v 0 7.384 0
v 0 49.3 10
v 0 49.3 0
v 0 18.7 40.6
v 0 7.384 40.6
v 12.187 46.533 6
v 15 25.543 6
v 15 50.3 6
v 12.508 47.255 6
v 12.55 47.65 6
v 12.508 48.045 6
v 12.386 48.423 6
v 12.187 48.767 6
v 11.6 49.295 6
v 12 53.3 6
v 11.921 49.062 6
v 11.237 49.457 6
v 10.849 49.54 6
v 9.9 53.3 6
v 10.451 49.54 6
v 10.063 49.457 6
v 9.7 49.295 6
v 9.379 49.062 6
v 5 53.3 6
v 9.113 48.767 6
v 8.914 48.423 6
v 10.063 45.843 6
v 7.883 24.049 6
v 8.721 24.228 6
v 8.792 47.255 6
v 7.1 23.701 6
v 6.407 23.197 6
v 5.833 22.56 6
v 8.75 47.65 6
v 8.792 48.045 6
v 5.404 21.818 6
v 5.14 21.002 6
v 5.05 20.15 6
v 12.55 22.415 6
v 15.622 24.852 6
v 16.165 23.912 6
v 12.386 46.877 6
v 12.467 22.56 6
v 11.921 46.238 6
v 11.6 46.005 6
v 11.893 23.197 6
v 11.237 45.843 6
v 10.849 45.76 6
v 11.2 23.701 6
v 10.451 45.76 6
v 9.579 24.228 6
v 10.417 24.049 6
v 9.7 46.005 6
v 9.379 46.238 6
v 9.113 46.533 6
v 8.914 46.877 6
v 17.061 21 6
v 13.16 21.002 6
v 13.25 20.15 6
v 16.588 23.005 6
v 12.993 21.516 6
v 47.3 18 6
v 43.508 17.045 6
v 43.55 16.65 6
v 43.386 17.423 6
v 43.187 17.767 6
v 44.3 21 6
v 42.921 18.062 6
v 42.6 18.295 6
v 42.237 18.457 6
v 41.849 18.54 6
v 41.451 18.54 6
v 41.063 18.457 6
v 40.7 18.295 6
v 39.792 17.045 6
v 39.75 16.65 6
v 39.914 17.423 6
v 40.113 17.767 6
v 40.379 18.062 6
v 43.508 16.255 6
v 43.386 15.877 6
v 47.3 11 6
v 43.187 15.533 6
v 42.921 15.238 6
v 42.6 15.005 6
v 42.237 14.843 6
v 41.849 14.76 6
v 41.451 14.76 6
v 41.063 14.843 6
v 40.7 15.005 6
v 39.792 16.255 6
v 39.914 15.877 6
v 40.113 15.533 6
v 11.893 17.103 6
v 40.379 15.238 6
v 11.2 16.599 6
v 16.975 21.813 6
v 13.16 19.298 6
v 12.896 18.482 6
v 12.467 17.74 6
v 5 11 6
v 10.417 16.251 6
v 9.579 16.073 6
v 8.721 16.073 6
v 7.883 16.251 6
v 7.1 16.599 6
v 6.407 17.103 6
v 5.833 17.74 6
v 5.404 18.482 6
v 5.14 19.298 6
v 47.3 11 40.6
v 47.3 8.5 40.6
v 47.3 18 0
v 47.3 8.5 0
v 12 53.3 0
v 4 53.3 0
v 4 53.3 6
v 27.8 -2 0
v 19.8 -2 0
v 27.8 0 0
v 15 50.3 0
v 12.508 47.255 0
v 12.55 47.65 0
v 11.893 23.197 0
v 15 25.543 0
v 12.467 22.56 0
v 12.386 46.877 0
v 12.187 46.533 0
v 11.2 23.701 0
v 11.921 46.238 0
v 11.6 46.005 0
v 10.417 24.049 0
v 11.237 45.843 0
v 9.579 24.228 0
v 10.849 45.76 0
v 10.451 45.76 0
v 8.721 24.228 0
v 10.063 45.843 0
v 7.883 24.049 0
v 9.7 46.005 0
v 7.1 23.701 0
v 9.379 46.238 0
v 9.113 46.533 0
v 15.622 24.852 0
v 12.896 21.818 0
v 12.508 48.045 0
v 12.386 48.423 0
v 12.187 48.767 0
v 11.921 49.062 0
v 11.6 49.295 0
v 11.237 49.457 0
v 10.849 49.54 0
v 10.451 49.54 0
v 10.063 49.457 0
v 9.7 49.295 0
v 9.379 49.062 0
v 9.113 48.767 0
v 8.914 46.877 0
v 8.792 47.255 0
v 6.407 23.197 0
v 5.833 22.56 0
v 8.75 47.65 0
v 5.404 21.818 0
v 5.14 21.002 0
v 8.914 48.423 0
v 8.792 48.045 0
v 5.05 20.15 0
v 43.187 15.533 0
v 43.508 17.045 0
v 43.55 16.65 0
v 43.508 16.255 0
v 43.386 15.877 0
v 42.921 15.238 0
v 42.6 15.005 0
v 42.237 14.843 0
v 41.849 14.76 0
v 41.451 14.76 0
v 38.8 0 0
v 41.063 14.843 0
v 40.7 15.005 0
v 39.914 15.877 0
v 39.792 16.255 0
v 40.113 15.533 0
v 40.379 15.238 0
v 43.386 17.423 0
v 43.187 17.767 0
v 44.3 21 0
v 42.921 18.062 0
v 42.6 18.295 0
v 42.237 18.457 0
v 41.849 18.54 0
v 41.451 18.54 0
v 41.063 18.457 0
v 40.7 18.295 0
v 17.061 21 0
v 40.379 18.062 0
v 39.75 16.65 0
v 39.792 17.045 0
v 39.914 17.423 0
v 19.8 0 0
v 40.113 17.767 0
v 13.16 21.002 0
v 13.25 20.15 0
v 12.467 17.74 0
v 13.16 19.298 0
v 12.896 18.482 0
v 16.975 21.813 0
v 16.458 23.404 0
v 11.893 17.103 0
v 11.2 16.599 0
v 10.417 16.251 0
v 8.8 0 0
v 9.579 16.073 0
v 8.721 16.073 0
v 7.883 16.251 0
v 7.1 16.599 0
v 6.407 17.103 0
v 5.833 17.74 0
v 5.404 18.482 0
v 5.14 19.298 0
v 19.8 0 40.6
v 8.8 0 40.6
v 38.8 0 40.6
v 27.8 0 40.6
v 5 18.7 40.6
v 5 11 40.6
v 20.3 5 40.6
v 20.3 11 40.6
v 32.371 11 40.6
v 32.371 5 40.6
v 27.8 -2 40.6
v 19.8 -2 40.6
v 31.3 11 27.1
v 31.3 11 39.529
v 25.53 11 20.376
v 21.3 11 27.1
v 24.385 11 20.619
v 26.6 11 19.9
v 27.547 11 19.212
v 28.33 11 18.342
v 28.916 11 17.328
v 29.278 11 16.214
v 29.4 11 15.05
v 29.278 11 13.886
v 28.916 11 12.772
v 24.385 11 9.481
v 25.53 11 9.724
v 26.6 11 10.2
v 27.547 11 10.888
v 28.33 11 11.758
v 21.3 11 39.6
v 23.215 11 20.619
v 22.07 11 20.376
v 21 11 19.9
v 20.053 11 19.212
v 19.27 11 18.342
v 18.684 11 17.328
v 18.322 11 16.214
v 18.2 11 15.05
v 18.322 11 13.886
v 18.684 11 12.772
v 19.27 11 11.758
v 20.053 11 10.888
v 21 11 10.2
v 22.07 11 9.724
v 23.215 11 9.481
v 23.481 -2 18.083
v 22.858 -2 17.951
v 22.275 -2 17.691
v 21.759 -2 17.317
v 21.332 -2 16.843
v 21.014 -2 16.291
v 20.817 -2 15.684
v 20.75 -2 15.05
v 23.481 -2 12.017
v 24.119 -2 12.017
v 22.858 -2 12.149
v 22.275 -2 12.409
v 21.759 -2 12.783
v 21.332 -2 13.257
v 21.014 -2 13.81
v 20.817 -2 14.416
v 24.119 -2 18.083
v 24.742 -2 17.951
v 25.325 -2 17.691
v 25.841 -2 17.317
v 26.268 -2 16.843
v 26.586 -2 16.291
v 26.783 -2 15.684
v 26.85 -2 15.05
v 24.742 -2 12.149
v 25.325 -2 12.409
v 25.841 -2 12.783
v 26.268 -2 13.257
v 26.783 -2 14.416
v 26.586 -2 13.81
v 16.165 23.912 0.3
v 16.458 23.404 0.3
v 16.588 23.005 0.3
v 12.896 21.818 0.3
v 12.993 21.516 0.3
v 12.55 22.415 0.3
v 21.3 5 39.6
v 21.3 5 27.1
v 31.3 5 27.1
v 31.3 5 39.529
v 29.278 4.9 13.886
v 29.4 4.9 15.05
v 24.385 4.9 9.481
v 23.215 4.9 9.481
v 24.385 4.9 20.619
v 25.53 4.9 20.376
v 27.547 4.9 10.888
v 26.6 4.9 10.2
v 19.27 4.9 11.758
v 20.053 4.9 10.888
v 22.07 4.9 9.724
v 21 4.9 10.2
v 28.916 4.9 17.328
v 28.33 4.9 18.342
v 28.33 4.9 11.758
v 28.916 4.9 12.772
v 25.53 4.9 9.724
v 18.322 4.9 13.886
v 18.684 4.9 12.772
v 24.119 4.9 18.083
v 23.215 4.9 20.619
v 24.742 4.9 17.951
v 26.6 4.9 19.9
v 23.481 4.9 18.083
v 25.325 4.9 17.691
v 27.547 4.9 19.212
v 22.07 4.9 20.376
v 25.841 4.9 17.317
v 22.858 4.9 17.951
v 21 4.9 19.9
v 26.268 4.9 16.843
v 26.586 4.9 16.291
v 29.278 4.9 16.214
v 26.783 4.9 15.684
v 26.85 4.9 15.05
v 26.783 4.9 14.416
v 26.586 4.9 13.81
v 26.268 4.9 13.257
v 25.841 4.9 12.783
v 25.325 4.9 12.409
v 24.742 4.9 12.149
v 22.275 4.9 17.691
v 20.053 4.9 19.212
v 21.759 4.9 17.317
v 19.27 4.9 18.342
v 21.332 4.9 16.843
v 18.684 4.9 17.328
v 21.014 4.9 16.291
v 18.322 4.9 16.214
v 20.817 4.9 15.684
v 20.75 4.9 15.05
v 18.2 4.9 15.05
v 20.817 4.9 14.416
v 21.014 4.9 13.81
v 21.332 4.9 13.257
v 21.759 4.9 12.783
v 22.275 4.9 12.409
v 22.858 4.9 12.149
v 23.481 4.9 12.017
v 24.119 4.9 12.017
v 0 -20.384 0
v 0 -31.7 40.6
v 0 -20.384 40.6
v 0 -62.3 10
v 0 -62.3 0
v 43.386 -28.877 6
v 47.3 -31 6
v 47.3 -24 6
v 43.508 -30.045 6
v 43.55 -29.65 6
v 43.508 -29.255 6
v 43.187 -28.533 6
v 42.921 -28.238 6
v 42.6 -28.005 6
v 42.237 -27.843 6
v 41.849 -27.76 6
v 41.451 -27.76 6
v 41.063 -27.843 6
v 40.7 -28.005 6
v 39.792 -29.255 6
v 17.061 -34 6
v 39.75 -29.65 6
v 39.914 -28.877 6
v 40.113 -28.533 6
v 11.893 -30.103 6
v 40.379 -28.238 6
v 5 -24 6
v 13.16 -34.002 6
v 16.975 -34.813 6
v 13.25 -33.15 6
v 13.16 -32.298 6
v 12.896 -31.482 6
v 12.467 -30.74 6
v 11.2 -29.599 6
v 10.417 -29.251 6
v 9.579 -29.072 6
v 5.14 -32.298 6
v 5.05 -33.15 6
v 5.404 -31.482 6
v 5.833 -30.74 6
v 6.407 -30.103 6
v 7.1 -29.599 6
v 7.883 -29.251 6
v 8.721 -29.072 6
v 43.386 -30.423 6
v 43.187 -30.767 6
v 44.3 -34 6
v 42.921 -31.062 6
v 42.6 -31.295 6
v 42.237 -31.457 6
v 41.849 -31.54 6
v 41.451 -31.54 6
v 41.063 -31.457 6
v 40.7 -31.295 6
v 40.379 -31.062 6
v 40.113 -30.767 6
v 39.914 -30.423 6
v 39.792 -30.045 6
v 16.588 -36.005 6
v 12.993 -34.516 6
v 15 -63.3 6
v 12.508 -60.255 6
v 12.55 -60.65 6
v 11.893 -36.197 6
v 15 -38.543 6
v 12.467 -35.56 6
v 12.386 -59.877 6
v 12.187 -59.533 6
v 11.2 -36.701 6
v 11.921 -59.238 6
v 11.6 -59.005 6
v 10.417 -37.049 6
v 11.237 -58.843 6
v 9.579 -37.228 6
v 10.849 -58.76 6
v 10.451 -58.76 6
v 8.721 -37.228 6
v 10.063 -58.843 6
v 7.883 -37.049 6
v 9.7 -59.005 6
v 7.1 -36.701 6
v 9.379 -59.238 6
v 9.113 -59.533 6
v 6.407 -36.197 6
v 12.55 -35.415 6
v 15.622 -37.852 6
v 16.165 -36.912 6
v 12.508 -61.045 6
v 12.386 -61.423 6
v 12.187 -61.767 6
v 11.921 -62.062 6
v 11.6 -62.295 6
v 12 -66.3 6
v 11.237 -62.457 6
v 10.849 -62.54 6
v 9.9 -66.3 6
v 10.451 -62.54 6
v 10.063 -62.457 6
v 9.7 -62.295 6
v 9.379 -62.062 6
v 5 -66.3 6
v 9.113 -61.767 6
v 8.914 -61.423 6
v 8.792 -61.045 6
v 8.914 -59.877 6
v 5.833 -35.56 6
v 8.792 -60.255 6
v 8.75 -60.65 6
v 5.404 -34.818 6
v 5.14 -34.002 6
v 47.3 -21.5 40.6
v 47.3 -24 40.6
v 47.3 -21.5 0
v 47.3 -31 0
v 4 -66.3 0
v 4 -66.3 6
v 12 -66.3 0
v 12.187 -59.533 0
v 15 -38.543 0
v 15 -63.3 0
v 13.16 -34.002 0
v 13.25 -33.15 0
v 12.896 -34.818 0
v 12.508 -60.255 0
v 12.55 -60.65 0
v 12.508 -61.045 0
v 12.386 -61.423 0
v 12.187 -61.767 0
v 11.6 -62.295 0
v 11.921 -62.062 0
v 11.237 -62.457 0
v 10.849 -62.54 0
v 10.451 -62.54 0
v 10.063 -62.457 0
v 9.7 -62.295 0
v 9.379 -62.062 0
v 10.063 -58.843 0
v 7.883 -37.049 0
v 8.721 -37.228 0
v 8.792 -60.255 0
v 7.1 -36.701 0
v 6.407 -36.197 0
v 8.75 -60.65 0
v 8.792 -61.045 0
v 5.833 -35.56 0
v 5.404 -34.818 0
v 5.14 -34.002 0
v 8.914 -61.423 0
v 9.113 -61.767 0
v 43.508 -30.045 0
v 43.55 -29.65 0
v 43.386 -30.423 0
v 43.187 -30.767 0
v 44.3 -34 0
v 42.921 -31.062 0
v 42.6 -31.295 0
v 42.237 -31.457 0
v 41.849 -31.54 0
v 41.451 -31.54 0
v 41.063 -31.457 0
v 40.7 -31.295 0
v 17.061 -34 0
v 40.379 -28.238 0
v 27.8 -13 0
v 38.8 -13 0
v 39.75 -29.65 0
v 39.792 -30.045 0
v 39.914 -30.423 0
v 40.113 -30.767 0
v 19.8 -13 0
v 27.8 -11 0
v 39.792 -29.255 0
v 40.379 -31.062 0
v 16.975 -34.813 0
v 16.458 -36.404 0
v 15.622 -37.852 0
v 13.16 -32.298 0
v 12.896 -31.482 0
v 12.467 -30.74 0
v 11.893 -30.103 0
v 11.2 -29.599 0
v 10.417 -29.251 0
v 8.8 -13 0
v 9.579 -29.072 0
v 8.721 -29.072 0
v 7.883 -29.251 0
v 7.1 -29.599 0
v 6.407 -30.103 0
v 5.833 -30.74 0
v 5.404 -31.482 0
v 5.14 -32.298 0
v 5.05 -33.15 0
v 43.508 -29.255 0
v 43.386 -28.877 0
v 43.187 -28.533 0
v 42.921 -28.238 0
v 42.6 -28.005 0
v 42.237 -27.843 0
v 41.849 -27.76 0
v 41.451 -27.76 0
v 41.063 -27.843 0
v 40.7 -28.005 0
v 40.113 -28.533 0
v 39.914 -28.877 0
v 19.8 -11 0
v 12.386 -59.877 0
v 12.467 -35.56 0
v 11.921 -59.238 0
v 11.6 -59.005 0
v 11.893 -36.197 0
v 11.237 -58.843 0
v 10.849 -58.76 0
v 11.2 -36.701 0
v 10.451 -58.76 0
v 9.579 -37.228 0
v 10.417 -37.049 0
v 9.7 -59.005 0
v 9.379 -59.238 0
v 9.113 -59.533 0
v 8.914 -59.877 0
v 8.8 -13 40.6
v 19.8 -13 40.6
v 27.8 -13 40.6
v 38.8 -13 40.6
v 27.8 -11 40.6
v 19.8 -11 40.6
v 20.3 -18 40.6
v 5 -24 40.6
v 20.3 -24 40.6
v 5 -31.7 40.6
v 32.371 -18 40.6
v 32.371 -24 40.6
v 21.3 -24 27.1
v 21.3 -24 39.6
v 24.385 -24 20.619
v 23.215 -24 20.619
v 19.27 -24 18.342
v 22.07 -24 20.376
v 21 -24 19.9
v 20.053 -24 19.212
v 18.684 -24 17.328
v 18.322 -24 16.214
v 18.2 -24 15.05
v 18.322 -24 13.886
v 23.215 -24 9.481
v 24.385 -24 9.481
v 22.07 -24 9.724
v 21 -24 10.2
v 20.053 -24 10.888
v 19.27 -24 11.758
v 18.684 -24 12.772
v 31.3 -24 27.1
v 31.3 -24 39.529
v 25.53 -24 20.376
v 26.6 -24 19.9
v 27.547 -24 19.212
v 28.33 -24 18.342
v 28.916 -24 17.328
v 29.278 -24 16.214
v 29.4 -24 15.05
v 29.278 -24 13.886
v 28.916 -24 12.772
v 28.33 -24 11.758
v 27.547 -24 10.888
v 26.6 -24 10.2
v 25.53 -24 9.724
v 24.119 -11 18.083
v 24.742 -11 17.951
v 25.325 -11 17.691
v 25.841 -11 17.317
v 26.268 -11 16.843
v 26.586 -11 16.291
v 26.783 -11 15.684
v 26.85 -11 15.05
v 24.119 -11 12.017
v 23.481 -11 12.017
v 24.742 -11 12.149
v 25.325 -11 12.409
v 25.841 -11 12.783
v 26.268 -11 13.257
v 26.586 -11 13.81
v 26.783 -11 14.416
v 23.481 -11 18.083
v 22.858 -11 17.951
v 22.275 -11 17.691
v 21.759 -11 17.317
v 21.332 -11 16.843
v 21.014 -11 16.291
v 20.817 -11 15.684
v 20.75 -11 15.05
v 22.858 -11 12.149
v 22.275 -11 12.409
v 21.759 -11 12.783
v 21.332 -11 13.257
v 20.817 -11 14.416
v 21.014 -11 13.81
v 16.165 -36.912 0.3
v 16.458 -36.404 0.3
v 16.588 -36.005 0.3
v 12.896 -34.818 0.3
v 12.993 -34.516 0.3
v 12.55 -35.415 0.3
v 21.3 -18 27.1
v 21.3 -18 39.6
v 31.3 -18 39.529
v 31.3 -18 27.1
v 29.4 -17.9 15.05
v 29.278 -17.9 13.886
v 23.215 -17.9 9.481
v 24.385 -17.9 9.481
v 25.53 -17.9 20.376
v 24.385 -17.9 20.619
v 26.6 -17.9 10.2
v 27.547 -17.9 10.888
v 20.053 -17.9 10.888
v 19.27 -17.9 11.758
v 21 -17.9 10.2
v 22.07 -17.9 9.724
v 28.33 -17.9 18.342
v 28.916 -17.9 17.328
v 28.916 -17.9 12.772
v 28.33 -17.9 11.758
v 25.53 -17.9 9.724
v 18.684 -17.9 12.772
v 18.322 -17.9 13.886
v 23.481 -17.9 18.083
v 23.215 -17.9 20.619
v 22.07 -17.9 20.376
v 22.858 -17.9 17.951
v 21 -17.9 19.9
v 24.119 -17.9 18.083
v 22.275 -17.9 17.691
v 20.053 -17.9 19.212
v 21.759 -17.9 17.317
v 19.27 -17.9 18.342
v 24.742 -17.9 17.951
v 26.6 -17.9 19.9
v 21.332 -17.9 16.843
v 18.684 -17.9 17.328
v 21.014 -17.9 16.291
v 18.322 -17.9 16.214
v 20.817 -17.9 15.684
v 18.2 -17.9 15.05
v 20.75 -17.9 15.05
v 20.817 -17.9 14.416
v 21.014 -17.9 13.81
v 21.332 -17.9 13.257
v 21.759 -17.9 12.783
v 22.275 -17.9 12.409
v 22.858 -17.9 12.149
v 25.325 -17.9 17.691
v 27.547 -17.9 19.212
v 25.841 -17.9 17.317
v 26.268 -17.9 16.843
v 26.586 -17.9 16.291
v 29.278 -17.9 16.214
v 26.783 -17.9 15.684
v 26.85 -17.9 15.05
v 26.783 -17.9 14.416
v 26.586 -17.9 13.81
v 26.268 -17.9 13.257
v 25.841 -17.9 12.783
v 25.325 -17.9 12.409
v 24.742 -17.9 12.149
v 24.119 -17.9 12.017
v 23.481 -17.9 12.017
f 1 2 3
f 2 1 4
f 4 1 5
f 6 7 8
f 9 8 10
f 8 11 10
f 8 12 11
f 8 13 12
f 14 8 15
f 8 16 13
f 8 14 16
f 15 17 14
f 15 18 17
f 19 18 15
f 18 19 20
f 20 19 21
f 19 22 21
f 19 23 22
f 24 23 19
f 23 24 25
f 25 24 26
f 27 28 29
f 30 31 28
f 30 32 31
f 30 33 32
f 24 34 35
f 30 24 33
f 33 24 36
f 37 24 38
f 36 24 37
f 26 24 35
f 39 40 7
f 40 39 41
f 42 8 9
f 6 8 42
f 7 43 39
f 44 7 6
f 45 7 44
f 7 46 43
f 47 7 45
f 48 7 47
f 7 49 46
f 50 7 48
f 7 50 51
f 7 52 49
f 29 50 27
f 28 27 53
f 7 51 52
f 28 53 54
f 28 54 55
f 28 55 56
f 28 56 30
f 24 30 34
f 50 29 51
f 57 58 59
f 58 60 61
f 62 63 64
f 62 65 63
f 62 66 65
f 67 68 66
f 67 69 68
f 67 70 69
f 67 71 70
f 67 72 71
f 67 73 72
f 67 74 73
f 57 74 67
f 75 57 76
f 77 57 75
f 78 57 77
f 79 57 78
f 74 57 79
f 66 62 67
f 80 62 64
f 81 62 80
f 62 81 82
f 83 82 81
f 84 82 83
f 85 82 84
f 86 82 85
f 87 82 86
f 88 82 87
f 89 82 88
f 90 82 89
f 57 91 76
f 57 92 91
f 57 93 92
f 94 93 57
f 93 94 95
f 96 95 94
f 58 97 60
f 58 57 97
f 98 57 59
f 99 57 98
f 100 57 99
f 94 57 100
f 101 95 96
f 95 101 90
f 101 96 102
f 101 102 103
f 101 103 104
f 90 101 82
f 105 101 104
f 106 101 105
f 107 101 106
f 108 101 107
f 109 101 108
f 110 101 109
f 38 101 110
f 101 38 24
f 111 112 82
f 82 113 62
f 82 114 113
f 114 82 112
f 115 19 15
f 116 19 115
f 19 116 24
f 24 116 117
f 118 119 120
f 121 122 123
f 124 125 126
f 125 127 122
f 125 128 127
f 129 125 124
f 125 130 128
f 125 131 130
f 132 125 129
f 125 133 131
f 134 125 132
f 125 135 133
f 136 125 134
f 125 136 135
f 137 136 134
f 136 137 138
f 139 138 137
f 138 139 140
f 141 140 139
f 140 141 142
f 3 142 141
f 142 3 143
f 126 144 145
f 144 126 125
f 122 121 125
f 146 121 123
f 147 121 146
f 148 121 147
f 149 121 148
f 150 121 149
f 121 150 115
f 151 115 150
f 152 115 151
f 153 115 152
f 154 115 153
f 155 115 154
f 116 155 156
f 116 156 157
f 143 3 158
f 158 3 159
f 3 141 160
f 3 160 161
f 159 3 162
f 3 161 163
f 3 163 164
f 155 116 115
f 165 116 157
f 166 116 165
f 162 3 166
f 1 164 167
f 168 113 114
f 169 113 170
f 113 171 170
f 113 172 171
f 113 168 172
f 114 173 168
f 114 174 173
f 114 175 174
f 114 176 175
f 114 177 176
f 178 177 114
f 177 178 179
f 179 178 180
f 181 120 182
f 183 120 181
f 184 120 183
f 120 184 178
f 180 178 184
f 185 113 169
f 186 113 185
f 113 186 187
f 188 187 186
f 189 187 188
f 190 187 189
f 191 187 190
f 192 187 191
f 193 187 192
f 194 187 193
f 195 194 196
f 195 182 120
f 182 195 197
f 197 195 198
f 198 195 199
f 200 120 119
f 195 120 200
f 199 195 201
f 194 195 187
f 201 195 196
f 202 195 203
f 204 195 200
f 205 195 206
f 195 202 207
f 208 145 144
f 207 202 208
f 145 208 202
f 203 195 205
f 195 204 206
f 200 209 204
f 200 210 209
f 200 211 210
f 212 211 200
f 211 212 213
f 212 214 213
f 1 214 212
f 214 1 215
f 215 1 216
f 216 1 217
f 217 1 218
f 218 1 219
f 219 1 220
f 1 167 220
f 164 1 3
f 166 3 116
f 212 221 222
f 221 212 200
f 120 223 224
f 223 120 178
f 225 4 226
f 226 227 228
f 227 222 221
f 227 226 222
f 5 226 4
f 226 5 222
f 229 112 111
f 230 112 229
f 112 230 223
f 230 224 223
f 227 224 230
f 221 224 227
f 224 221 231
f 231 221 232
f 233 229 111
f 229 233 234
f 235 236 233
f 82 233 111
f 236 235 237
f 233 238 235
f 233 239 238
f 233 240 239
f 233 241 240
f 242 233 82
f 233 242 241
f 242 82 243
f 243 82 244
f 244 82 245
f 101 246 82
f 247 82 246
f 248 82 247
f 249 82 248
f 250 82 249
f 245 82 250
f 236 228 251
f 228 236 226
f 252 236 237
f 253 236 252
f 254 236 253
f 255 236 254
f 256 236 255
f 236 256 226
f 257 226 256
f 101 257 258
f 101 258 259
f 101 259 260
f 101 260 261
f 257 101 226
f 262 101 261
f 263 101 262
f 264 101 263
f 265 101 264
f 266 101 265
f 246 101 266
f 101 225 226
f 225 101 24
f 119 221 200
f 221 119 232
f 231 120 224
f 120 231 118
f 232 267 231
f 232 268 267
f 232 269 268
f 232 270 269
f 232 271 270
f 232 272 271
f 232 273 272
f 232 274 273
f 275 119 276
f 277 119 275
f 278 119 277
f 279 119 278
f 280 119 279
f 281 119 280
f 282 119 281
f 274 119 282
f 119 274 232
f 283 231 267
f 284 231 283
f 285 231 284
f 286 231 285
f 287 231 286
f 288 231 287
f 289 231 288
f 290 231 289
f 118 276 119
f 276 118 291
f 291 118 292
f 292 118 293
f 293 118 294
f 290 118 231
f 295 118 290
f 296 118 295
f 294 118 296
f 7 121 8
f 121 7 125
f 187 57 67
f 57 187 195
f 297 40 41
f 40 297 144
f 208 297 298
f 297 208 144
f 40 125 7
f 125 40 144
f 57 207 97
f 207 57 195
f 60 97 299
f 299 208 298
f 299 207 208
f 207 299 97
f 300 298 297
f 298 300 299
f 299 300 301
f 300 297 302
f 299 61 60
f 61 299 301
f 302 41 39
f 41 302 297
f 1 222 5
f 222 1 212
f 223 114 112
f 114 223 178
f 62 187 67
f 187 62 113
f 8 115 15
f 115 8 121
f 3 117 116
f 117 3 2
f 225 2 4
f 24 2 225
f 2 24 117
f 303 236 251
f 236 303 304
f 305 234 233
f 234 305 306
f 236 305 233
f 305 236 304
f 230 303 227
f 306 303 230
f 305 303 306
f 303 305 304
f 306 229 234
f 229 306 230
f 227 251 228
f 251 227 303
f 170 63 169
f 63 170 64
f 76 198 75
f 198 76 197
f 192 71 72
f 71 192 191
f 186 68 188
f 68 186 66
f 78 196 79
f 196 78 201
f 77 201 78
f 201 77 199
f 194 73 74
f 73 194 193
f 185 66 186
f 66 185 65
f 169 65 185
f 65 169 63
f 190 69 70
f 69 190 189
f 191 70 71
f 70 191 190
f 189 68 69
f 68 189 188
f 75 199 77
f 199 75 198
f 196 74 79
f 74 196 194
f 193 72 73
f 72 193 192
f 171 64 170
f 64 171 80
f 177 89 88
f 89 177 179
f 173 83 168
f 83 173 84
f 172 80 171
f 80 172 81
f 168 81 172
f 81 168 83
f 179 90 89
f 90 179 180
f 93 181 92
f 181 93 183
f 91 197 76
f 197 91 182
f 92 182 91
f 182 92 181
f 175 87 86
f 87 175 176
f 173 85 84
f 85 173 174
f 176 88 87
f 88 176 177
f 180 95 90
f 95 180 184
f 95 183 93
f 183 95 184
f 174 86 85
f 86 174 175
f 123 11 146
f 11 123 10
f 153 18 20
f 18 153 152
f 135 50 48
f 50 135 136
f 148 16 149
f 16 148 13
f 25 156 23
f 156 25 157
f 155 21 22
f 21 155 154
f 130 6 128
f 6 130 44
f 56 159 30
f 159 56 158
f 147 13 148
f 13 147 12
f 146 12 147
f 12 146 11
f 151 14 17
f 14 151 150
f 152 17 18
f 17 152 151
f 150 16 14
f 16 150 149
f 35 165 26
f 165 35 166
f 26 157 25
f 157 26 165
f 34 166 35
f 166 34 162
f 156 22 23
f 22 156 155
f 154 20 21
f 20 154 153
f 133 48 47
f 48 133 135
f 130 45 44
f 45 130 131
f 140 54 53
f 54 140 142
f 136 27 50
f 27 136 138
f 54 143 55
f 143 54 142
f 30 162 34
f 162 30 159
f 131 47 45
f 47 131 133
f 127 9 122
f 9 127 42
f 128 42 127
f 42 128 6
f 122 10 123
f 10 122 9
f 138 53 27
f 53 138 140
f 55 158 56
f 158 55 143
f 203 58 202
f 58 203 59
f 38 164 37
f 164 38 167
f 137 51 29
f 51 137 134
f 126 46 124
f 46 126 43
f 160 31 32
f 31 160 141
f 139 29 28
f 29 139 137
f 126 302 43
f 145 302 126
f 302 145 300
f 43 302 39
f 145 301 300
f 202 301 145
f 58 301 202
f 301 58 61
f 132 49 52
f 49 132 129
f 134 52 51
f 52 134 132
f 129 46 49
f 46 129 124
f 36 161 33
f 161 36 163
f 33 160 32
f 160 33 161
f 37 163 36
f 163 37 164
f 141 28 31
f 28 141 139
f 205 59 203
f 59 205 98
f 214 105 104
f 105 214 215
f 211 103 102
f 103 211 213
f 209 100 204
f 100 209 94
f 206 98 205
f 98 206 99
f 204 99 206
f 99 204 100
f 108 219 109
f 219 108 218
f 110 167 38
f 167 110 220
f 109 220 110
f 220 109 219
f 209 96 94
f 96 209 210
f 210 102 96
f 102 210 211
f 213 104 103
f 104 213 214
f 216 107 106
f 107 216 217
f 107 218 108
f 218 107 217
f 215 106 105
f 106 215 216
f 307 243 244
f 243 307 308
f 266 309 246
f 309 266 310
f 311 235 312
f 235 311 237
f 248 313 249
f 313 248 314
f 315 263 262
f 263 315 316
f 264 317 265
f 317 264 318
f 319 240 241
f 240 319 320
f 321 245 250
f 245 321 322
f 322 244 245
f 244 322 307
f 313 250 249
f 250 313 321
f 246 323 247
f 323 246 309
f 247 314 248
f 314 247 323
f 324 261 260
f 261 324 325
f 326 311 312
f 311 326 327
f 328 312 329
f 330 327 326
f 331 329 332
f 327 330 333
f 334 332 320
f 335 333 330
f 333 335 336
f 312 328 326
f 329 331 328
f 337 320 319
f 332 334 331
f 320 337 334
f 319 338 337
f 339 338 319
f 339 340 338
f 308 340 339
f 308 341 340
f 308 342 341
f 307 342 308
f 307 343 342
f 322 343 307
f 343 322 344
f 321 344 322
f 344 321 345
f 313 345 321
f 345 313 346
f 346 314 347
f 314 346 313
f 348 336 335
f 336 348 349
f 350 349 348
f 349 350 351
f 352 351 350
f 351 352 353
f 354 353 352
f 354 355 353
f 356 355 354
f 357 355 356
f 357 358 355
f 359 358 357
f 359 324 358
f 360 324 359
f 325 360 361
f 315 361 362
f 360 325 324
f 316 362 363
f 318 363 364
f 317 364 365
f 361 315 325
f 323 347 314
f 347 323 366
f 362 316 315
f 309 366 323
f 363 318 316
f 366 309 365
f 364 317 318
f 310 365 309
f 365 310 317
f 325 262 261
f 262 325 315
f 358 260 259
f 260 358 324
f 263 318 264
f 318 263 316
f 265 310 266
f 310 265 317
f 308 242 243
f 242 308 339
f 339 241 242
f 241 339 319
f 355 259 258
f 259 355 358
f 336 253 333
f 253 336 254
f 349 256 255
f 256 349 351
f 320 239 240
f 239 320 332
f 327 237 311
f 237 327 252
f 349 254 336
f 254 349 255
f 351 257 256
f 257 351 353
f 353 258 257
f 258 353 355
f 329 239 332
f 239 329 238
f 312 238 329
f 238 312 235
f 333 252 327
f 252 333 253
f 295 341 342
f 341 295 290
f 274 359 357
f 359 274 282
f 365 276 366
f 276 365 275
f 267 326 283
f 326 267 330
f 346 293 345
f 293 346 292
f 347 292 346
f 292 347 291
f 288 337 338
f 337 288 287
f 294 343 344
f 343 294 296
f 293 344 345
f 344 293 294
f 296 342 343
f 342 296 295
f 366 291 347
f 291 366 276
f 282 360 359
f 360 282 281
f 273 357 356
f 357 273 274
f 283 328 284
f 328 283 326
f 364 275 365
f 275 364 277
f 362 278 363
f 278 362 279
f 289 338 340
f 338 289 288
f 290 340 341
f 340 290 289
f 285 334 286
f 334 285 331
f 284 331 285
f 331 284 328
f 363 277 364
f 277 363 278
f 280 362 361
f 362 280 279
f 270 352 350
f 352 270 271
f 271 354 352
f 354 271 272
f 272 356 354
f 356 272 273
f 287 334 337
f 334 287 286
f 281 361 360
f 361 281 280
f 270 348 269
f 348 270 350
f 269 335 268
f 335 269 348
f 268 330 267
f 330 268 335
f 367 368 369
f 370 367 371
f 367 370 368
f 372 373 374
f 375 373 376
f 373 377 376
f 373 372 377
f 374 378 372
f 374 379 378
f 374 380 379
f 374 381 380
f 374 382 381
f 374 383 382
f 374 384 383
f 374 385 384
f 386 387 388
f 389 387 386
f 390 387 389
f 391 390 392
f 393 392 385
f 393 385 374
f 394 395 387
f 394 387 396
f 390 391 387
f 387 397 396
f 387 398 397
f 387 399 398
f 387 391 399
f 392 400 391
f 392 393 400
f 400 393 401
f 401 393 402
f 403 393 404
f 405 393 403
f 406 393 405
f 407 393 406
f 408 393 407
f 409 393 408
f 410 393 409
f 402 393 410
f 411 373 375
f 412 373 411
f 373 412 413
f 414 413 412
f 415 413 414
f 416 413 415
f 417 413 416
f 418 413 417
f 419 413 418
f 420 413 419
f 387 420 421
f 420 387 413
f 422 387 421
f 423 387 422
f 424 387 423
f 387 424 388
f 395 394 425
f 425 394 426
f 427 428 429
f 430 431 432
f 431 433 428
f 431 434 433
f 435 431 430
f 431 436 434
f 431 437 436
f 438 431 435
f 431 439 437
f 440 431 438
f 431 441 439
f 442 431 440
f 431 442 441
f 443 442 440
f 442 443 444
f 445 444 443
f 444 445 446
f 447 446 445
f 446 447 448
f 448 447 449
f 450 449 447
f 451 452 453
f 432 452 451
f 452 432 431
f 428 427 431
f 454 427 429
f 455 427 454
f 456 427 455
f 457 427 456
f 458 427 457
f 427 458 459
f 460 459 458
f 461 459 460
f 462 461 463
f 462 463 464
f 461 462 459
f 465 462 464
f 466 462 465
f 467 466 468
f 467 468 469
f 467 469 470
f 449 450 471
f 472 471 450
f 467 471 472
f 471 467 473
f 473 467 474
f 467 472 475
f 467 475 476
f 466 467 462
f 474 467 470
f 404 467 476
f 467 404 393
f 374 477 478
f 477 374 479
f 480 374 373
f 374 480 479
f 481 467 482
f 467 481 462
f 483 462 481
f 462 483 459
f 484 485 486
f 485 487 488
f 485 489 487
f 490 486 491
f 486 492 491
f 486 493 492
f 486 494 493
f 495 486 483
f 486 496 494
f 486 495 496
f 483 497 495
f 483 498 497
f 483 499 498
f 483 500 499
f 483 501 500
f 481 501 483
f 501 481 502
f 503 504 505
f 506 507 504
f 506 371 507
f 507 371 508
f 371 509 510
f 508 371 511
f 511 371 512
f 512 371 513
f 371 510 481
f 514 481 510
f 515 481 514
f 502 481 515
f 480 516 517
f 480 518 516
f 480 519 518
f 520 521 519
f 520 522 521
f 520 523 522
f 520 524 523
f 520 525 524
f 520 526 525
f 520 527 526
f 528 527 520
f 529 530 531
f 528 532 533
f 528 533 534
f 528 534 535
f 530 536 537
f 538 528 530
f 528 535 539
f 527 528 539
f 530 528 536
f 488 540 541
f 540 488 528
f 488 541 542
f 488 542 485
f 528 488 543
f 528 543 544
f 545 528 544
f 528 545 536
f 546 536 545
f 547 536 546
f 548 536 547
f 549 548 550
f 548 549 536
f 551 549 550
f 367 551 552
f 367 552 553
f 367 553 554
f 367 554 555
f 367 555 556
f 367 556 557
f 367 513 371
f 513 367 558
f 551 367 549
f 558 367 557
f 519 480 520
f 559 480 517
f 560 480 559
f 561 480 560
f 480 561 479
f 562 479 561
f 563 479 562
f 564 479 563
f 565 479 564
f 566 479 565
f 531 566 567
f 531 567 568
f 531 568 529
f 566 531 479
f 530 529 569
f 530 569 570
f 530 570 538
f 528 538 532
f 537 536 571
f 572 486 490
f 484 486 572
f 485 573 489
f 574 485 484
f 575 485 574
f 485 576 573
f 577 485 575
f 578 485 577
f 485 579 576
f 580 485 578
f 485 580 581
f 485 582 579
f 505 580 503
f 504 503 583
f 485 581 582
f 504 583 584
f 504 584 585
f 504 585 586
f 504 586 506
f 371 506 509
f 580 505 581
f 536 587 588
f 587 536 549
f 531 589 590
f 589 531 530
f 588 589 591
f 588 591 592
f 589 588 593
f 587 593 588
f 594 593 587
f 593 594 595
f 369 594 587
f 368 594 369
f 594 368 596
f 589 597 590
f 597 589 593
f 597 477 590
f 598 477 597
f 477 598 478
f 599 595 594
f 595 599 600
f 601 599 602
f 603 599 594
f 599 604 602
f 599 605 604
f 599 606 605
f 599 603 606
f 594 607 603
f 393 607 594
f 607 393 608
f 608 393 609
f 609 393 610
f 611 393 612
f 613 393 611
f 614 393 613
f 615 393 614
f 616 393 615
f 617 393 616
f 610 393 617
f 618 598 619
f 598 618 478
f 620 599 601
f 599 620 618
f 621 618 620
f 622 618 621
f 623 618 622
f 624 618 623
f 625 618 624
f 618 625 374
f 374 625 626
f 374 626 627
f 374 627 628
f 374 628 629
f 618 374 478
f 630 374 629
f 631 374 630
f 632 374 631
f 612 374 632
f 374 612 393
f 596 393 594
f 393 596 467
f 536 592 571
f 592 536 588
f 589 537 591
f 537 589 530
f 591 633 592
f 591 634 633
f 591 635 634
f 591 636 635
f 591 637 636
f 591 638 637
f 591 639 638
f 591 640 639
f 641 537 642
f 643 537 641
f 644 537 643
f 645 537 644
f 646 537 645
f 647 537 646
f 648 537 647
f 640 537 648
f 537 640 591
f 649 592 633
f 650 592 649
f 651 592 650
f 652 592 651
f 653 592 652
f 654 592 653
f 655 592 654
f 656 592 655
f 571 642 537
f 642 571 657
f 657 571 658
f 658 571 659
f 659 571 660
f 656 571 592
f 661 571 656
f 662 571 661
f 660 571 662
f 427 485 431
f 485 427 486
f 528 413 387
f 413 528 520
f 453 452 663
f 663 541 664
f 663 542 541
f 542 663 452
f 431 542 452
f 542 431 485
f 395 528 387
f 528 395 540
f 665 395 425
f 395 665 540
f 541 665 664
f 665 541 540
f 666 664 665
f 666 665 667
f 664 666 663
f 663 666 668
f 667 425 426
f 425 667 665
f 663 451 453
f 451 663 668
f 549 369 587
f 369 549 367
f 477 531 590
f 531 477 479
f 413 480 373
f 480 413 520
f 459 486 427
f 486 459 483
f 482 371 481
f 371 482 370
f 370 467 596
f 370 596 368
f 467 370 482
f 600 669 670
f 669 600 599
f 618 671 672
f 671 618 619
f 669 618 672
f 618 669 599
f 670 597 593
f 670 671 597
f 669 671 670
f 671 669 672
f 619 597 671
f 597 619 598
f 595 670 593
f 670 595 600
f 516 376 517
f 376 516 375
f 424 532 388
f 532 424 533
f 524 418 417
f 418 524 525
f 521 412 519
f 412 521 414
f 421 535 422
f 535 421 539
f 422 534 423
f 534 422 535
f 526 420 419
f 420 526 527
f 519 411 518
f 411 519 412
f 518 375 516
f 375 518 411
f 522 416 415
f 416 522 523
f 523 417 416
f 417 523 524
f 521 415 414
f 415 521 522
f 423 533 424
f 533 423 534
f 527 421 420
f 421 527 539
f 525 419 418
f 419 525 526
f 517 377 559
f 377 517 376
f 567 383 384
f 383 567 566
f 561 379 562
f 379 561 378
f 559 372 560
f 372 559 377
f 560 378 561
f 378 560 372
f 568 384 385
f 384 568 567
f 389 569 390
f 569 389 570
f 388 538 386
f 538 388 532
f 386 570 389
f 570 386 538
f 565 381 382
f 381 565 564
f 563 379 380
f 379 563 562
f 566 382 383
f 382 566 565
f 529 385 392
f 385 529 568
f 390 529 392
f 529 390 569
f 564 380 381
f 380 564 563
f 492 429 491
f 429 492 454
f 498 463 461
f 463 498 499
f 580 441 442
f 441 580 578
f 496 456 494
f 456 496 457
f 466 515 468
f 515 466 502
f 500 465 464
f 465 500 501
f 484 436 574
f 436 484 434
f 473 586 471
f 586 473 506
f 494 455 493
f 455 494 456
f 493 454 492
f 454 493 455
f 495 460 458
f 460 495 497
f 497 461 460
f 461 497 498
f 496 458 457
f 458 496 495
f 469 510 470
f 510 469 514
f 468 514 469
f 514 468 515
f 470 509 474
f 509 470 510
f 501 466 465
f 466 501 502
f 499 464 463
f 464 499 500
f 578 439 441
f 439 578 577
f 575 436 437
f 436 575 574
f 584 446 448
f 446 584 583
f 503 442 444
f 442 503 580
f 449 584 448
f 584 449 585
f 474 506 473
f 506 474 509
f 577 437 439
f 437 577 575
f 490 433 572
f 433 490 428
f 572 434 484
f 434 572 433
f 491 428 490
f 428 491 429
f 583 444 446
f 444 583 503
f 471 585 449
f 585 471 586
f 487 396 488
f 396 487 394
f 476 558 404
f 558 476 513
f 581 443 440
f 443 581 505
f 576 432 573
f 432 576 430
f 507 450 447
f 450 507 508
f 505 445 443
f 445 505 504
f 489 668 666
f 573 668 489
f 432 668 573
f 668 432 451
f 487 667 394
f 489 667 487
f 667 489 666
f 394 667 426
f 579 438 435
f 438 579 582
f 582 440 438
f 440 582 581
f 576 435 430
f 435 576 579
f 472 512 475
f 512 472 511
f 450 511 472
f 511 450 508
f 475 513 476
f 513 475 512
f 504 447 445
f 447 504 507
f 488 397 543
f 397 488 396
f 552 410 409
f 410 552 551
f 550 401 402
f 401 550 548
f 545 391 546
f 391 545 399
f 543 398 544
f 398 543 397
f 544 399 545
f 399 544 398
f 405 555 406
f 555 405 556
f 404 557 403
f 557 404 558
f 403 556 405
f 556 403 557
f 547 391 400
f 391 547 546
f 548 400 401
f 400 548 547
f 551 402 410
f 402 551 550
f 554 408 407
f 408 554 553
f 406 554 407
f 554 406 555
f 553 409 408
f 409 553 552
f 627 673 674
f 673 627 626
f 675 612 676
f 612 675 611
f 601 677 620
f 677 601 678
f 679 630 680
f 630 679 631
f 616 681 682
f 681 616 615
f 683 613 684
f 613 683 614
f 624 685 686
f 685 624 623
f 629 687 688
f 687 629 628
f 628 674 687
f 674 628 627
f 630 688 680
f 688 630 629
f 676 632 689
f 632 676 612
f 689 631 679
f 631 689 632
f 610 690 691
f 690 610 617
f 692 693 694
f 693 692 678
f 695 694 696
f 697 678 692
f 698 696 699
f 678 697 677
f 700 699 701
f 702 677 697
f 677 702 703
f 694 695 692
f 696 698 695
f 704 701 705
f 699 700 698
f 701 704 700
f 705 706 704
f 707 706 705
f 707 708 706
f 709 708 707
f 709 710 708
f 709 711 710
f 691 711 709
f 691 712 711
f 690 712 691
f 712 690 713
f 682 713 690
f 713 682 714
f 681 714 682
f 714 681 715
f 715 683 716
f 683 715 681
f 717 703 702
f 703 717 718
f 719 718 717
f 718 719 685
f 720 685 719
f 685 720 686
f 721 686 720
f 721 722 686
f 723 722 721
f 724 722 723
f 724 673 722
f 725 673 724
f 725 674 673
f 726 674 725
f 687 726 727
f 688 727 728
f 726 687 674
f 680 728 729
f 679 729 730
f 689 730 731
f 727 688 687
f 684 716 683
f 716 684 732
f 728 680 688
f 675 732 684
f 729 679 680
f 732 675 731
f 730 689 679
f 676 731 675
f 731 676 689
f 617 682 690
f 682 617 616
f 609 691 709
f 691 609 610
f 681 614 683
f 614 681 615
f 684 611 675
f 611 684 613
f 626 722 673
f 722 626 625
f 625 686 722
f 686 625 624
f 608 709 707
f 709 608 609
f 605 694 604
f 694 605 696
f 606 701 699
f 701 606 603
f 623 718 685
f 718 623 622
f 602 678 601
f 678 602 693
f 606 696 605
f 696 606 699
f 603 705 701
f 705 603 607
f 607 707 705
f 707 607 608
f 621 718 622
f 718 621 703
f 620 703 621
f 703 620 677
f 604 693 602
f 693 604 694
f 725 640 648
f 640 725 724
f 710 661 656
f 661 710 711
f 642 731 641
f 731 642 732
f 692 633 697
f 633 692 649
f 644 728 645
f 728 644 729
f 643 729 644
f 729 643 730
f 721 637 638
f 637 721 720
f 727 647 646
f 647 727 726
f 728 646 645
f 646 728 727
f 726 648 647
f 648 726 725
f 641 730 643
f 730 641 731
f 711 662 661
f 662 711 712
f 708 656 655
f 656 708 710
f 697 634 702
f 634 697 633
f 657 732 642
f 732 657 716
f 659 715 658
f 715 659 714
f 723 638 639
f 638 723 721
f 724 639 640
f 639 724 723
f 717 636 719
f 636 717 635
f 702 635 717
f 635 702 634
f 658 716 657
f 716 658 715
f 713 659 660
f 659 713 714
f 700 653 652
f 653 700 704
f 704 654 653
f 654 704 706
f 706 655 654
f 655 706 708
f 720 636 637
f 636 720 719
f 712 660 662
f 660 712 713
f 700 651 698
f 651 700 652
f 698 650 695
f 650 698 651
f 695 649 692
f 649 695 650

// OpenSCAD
// file: ../configuration.scad
/*
	Konfiguracni soubor 3D tiskarny RebeliX X2
	
	Sledujte nas na:		  
			www.RepRap4U.cz
			www.facebook.com/RebeliX.cz
			https://twitter.com/reprap4u
			https://plus.google.com/+Reprap4uCz-3Dtiskarna-RebeliX
*/

/*================ Slic3r nastaveni ==========================*/

// Vyska vrstvy pro tisknuti dilu [mm]
layer_height = 0.3;

// Sirka vytlacovaneho materialu [mm]
extrusion_width = 0.66; //Slic3r->Print Settings->Advanced->Default extrusion width

/*==================== M6 sroub ==============================*/

// Rezerva prumeru hlavy sroubu [mm]
space = 1;

// Prumer hlavy M6 sroubu (pricte se rezerva) [mm]
M6_head_diameter = 10.6+space;
//M6_head_diameter = 12+space;

// Vyska hlavy M6 sroubu (dulezite pro zapusteni hlavy sroubu do plastu) [mm]
M6_head_height = 3.6;
//M6_head_height = 4.5;

// Delka sroubu M6 [mm]
// M6x12
M6_lenght = 12;

/*=================== Nastaveni dilu =========================*/

// Posun Z zakladny
z_base_offset = 11;

// Tloustka rohovych spojek
// 5 mm => sroub M6x14 s podlozkou
// 3 mm => sroub M6x12 s podlozkou
coupler_thickness = 5;

// Prumer 8mm tyce
rod_8mm_d = 8.2;

// Posun drzacku mezi x-motor a x-end
x_holder_position = 6.5;

/*======================== Motory ============================*/

// Delka motoru (ovlivni dily a delky tyci pro osy Z a Y)
//SX17-1003LQFE (doporuceno hlavne na osu Z)
motor_length = 29.5;
//SX17-1003 (doporuceno hlavne na osu Z), SX17-0503LQEF
//motor_length = 34;
//SX17-1005
//motor_length = 40;
//SX17-0905 - zde je jiz problem s velkou vyskou motoru na ose Z - musi se upravit endstop-holder
//motor_length = 48;

/*================ Remeny a remenicky ========================*/

// GT2 
belt_tooth_distance = 2;
belt_tooth_ratio = 0.5;

// T2.5
//belt_tooth_distance = 2.5;
//belt_tooth_ratio = 0.68;
// main file
// RebeliX
//
// z-bottom
// GNU GPL v3
// Martin Neruda <neruda@reprap4u.cz>
// http://www.reprap4u.cz
// Inspired by Rebel II and Prusa i3


include <../configuration.scad>

// Mezera mezi motorem a soucastkou (tlumi prenaseni vibraci)
space = 0.6;

height = motor_length + space;

// Posun motoru do strany
motor_offset = 0; 

module z_bottom_base(){
 translate([0,0,0]) cube([42.3+5,42.3+z_base_offset,6]);
 translate([0,0,0]) cube([42.3+5,z_base_offset,height<=34+space ? 34+space+6 : height+6]);
 translate([0,0,0]) cube([5,42.3+z_base_offset,(height>=34+space)||(height<=34+space) ? 34+space+6 : height+6]);
 translate([2.5+21.3-4+motor_offset,-2,0]) cube([8,3,height<=34+space ? 34+space+6 : height+6]);
}

module z_bottom_cuts(){
 difference(){
   translate([15,10+z_base_offset,-0.1]) rotate([0,0,0]) cube([50,50,10]);
   translate([5+4.35-0.2,21.3+z_base_offset-12-0.15,-0.1]) rotate([0,0,0]) cylinder(r = 8, h = 20, $fn = 30);
 }
 translate([5+4.35-1/2,21.3+z_base_offset-12-1/2,layer_height]) rotate([0,0,45/2]) cube([10,1,10]); 
 
 translate([2.5+21.3-15+motor_offset,0,-0.1]) rotate([0,0,-220]) cube([30,15,height<=34+space ? 34+space+8 : height+8]);
 translate([2.5+21.3+15+motor_offset,0,-0.1]) rotate([0,0,-45]) cube([15,15,height<=34+space ? 34+space+8 : height+8]); 

 translate([42.3+6,6+z_base_offset,-0.1]) rotate([0,0,45]) cube([10,10,height+8]);
 translate([15,42.3+z_base_offset-3,-0.1]) rotate([0,0,45]) cube([10,10,height+8]);
 translate([-5,42.3+z_base_offset-9,-0.1]) rotate([0,0,45]) cube([20,10,height+8]);
 
 translate([-0.1,42.3+z_base_offset,6]) rotate([45,0,0]) cube([10,70,50]); 
 
 // Otvor pro kabely motoru 
 //translate([5+21.3-5,5,height+6-7]) cube([10,30,30]); 
 translate([5+21.3-5,5,height+6-9]) cube([10,20,30]); 
 translate([5+21.3,5,height<=34+space ? 34+space+7 : height+7]) rotate([0,45,0]) cube([5,30,5]); 
 translate([5+21.3-7,5,height<=34+space ? 34+space+7 : height+7]) rotate([0,45,0]) cube([5,30,5]);
}

module z_bottom_holes(){

 // Otvor pro hlazenou tyc 8mm
 translate([5+4.35-0.2,21.3+z_base_offset-12-0.15,-0.1]) rotate([0,0,0]) cylinder(r = rod_8mm_d/2, h = 20, $fn = 30);

 // Otvory pro motor
 translate([5+5.65,z_base_offset+5.65,-0.1]){
	translate([31,0,0]) cylinder(h = 20, r=1.9, $fn=30);
	translate([0,31,0]) cylinder(h = 20, r=1.9, $fn=30);
 }
 // Otvor pro prisroubovani do hlinikoveho profilu
 translate([2.5+21.3+motor_offset,z_base_offset-M6_head_height-2.5,height/2]) rotate([-90,0,0]) cylinder(r = M6_head_diameter/2, h = 20, $fn = 30);
 translate([2.5+21.3+motor_offset,-3,height/2]) rotate([-90,0,0]) cylinder(r = 3.05, h = 20, $fn = 30);
}

// Cela soucastka
module z_bottom(){
 difference(){
  z_bottom_base();
  z_bottom_cuts();
  z_bottom_holes();
 }
 
 translate([0,-13,0]) mirror([0,1,0]) difference(){
  z_bottom_base();
  z_bottom_cuts();
  z_bottom_holes();
 }
}

z_bottom();
